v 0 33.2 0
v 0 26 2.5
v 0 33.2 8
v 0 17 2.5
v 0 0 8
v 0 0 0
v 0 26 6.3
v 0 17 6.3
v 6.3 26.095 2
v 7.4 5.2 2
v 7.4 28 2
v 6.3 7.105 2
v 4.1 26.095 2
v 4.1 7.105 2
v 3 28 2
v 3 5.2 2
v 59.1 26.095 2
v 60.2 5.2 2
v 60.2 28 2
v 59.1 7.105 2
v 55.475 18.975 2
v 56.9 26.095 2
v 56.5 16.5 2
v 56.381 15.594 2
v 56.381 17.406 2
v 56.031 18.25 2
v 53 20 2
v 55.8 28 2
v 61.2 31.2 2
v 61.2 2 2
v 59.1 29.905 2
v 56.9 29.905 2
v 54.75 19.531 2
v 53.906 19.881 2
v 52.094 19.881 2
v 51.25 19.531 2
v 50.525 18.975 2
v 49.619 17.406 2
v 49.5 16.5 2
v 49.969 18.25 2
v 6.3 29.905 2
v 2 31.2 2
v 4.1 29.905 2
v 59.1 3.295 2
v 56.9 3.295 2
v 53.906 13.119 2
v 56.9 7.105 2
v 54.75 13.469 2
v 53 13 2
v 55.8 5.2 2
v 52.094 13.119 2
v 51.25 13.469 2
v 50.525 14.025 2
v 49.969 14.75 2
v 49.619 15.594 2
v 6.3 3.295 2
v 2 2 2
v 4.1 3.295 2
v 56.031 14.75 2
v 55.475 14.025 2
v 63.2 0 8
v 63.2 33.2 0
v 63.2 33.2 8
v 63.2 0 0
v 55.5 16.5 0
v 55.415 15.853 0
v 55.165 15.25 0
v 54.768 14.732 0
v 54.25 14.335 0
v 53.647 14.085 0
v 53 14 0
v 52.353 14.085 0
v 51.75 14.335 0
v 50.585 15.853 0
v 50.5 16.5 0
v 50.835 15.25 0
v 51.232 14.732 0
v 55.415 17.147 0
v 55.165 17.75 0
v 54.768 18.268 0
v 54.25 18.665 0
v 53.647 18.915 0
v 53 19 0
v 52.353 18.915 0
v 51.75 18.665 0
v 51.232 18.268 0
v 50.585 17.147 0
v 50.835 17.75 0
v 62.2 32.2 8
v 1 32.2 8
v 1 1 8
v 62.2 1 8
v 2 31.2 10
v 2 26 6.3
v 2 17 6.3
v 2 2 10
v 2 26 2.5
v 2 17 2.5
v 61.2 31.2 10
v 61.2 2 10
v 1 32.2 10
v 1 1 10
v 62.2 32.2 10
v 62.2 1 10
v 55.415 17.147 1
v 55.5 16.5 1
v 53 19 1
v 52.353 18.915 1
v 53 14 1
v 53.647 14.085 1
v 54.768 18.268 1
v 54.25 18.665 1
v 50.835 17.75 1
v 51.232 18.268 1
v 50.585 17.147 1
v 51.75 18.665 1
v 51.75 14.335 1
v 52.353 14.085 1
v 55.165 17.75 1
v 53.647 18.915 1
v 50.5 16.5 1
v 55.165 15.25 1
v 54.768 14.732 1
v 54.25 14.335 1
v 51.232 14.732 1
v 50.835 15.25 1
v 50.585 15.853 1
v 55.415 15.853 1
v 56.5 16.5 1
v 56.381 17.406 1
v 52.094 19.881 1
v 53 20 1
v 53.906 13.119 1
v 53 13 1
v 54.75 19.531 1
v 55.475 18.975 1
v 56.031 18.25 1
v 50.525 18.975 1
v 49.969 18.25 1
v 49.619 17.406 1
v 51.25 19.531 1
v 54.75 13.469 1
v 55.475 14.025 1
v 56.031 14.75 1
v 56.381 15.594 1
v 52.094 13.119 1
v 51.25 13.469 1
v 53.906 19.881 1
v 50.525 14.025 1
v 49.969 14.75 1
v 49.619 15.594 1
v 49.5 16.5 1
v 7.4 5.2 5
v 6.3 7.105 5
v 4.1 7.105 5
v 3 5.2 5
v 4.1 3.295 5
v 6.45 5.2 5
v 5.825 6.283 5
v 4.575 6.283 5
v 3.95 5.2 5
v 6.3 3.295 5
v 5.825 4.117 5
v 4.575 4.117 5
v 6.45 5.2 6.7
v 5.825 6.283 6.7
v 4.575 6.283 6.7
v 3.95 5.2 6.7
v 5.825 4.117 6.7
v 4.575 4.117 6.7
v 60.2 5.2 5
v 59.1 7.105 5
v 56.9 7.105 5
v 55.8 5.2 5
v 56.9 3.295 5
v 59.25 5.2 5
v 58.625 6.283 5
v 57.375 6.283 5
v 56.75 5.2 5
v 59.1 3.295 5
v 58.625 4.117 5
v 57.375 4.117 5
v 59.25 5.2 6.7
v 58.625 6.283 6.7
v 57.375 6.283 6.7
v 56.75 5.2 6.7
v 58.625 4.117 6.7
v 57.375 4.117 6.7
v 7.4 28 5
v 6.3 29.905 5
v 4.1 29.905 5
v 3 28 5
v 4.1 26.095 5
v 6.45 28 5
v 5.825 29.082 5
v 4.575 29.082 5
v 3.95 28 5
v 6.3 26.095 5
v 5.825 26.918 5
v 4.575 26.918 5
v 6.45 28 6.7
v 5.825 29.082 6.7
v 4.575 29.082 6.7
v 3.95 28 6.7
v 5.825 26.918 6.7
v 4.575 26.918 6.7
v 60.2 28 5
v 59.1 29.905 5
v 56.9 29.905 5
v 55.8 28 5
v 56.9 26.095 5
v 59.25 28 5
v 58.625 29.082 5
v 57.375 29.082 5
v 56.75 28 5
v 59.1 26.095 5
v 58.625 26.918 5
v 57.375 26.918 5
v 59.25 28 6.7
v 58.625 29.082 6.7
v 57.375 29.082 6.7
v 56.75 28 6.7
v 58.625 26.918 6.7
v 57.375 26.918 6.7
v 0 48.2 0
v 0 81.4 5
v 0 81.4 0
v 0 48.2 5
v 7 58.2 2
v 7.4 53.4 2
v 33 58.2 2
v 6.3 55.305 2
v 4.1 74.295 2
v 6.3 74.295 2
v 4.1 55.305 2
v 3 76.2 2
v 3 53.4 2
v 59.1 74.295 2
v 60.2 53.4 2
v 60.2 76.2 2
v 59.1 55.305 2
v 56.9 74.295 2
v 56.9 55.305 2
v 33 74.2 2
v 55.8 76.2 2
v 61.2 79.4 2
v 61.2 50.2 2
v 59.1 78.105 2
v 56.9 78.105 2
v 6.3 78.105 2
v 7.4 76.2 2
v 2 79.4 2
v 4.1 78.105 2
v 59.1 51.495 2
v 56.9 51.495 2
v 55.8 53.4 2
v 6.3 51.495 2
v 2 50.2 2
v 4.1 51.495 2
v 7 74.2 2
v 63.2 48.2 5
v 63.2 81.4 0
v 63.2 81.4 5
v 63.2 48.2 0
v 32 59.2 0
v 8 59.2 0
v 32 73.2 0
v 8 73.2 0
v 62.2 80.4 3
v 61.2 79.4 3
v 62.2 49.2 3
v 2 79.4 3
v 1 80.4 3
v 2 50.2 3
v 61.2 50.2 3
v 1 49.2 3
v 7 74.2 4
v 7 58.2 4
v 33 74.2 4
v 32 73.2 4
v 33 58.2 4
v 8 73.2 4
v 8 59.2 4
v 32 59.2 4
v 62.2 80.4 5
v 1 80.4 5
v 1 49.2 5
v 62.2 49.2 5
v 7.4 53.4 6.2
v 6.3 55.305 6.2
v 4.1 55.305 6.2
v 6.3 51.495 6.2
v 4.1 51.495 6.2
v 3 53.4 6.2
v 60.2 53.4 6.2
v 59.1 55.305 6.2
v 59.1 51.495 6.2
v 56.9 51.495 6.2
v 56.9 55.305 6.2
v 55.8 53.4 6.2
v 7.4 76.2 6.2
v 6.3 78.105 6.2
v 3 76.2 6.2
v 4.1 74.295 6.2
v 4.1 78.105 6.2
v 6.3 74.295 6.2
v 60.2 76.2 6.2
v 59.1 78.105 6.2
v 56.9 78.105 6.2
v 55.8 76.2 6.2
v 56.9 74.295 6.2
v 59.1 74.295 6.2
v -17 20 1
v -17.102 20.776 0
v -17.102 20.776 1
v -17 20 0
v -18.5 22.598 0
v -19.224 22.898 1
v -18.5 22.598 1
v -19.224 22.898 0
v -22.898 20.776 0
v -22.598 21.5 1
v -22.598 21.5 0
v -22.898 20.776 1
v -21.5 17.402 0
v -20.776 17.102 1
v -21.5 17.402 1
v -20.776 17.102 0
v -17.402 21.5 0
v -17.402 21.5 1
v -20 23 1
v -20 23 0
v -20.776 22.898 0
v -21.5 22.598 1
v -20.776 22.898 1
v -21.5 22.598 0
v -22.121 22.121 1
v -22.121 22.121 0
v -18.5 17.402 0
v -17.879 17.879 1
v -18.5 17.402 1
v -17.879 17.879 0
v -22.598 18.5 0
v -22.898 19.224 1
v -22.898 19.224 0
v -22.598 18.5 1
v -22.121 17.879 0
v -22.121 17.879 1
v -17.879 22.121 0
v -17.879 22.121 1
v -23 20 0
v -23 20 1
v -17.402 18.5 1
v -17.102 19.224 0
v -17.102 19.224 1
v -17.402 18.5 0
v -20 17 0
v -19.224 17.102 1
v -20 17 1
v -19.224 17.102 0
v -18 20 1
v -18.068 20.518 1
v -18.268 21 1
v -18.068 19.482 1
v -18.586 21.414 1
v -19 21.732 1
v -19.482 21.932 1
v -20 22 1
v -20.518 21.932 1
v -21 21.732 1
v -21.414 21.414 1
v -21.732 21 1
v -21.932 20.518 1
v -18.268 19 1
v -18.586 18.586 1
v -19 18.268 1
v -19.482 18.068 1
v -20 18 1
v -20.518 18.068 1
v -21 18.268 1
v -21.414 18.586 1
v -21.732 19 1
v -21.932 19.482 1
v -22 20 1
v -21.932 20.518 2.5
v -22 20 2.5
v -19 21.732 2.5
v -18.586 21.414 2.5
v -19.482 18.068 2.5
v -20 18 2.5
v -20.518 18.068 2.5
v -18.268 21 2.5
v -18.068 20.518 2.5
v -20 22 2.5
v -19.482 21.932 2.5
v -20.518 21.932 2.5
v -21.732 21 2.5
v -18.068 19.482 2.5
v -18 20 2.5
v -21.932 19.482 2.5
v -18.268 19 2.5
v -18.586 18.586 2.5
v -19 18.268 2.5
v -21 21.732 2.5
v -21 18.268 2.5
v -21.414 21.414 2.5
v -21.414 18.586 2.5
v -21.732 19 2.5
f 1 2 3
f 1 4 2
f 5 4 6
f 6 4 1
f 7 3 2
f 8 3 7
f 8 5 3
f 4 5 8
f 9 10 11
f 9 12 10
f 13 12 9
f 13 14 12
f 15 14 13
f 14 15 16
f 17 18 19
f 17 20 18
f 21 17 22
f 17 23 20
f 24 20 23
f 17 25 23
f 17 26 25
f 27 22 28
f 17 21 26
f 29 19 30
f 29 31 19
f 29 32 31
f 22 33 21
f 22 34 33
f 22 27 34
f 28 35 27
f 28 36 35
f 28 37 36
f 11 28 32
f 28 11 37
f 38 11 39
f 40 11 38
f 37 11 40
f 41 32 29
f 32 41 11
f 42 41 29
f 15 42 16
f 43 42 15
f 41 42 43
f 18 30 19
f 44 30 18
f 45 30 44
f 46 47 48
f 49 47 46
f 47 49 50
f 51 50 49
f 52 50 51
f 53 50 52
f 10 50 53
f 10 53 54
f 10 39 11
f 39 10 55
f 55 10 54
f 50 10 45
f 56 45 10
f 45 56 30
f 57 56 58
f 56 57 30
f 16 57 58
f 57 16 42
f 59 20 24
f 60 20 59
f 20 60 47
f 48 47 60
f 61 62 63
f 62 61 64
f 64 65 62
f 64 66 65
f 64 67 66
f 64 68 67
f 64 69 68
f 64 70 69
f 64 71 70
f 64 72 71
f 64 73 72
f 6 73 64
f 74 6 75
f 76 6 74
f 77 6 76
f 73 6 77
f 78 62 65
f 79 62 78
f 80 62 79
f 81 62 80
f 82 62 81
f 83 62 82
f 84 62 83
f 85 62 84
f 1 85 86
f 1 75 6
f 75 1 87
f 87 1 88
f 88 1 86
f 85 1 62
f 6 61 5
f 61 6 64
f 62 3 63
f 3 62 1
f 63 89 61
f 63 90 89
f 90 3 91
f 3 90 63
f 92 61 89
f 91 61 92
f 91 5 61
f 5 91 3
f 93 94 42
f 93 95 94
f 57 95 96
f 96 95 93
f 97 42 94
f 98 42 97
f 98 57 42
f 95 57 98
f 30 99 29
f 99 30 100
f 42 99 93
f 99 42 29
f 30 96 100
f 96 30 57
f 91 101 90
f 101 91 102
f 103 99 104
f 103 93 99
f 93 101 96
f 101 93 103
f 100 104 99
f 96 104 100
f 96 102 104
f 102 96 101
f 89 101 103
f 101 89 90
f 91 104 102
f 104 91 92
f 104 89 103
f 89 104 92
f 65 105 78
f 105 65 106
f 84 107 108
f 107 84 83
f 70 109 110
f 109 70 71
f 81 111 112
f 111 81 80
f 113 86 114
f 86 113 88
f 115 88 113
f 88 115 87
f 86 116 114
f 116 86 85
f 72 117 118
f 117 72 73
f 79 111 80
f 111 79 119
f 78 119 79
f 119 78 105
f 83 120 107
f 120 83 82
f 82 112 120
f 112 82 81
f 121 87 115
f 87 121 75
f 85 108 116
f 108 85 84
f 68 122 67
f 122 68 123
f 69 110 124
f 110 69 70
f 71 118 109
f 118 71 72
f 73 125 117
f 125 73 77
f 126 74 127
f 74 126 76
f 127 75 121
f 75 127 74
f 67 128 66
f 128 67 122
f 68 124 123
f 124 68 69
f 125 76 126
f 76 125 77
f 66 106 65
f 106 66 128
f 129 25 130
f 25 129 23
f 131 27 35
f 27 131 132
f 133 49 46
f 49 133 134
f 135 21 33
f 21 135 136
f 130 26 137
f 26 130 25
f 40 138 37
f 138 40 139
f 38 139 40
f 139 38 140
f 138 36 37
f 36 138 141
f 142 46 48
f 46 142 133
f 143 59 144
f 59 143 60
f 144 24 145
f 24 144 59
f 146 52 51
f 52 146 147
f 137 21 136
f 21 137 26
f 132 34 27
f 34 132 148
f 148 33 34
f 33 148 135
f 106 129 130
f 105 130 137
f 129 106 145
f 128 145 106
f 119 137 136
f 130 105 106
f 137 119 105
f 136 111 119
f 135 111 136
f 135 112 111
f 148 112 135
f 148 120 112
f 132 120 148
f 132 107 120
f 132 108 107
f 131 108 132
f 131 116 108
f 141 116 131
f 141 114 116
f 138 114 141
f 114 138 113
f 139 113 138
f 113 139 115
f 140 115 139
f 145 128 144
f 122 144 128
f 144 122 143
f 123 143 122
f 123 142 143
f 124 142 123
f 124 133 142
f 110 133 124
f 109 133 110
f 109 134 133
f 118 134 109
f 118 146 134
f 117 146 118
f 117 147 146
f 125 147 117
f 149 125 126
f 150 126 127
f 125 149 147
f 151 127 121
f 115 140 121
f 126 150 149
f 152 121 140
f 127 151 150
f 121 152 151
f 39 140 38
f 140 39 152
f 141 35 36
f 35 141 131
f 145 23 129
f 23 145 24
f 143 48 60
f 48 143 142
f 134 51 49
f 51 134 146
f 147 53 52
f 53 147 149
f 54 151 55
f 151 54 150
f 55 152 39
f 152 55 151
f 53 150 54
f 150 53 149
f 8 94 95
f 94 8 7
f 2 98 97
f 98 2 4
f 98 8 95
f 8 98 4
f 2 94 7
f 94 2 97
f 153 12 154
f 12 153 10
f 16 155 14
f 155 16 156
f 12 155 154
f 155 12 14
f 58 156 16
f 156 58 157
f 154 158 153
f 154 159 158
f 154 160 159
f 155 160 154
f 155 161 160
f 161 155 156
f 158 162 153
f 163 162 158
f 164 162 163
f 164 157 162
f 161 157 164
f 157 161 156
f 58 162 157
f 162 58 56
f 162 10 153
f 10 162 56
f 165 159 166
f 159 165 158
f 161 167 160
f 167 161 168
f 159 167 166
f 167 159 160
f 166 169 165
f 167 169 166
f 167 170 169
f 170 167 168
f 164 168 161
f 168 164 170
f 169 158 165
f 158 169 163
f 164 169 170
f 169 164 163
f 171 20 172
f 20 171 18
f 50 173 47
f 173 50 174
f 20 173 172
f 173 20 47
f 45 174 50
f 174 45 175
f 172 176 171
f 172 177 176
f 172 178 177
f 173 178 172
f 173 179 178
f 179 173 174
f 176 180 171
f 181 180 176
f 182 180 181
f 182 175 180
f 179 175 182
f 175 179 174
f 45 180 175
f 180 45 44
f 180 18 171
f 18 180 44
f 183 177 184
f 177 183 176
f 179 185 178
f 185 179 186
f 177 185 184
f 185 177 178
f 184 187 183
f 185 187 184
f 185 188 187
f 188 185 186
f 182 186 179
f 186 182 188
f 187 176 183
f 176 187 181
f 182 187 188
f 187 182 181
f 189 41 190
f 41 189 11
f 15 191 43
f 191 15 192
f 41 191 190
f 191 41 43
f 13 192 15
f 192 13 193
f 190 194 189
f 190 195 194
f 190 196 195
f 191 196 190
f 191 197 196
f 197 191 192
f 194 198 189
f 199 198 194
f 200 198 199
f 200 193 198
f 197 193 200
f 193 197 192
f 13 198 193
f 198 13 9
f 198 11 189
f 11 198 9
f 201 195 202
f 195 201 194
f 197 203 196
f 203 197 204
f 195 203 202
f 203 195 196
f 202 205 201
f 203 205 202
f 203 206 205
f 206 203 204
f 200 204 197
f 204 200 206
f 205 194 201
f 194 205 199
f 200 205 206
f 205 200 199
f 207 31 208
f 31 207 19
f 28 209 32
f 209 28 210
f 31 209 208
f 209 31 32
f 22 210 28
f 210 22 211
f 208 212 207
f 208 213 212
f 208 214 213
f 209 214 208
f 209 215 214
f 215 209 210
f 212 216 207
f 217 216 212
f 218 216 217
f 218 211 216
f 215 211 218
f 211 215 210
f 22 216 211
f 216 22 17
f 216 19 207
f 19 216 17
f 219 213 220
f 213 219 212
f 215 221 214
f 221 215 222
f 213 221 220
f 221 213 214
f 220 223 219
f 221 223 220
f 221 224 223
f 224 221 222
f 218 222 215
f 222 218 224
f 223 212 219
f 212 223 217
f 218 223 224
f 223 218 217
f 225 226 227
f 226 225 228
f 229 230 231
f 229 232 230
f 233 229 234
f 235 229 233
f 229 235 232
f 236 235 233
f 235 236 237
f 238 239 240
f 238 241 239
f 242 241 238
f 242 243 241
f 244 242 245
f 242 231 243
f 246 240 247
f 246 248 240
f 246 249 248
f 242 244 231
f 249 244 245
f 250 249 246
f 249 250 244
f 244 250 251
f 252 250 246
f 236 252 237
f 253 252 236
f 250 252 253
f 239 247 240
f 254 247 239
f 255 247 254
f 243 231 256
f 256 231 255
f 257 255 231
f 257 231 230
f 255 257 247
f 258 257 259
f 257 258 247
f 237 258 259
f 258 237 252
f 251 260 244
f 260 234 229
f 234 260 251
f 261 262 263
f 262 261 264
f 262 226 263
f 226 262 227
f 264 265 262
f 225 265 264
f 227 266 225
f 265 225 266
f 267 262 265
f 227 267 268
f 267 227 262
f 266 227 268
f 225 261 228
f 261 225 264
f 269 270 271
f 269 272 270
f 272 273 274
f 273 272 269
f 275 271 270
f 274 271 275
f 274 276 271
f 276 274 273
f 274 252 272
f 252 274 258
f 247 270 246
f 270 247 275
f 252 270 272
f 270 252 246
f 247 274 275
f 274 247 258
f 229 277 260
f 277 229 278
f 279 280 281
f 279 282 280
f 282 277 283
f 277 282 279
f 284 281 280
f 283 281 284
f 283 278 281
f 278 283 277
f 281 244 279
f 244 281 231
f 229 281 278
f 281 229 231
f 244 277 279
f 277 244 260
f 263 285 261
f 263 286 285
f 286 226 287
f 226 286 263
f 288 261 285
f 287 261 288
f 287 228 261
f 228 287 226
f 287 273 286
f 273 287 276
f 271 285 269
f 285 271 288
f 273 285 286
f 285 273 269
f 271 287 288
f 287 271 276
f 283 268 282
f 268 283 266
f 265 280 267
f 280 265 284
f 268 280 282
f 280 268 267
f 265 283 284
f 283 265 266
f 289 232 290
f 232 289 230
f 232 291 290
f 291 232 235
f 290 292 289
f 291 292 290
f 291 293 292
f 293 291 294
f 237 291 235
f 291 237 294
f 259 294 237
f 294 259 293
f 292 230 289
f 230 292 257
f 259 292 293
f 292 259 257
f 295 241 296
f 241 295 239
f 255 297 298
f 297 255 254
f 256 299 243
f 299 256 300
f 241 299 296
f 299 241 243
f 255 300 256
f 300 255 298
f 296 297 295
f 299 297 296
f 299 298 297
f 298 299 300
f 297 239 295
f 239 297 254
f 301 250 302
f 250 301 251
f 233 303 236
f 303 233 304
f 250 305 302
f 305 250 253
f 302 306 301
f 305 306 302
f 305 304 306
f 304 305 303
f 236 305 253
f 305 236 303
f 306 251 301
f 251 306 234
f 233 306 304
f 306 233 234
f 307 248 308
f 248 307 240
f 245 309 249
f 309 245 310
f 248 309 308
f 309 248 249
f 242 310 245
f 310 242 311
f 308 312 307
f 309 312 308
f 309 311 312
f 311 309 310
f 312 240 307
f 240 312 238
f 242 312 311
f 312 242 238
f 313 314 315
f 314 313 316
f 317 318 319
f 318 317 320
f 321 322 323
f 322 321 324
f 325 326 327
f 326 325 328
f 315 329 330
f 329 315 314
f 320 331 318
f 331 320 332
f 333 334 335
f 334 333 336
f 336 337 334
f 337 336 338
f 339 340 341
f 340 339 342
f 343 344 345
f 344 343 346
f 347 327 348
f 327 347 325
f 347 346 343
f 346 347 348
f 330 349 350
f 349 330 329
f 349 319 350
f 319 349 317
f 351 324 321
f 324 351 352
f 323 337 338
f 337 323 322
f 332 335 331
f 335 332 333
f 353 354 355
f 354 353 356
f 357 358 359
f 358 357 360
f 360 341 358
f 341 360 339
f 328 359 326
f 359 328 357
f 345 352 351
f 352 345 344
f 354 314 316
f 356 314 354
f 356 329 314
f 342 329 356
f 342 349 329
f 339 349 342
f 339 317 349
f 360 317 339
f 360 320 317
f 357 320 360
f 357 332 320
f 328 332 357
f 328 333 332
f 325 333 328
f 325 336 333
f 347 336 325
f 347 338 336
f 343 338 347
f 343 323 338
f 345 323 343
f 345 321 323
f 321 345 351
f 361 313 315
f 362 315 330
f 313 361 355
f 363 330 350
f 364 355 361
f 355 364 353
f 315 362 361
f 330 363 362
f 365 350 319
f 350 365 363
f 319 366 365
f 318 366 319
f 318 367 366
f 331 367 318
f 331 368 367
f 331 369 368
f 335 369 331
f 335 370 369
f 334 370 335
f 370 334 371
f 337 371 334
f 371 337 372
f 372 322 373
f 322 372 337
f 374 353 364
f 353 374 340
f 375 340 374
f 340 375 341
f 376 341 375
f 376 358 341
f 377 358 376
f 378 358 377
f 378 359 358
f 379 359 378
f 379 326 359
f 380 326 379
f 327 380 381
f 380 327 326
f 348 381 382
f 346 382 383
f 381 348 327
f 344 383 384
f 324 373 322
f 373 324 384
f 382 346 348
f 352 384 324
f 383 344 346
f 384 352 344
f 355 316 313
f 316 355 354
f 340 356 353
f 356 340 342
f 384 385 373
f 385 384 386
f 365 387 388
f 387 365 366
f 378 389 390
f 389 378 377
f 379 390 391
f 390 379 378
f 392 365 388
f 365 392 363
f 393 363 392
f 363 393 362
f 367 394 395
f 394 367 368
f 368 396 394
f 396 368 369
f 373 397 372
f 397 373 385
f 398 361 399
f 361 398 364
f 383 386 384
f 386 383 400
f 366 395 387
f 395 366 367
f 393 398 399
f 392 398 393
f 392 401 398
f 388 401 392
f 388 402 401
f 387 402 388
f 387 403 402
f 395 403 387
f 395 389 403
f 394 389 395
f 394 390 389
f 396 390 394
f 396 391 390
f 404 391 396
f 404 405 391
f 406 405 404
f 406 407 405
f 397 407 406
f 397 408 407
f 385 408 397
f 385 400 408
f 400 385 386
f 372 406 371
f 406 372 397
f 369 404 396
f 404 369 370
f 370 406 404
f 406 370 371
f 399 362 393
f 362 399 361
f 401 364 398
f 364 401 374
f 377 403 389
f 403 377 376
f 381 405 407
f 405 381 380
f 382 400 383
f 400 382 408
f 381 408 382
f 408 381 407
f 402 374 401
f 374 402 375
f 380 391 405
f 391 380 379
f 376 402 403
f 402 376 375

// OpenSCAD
// This design is parameterized based on holes in a PCB.
// It assumes that the PCB has 4 holes, evenly spaced as
// corners of a rectangle.

// Note: width refers to X axis, depth to Y, height to Z
bottom = true;
top = true;
flash_show = true;
usb = true;
reset= false;
flash_remove_pin = false;
flash_hole = true;
// Edit these parameters for your own board dimensions
wall_thickness = 2;
floor_thickness = 2;
ceiling_thickness = 2;

bottom_wall_height = 6;
top_wall_height = 3;

window_x = 24.0; // v3
//window_x = 31.0; // Bv2
window_y = 14.0; // v3
//window_y = 16.0; // Bv2
window_ridge = 2;
// Total height of box = floor_thickness + ceiling_thickness + bottom_wall_height + top_wall_height

hole_spacing_x = 52.8; // v3
//hole_spacing_x = 59.0; // B v2
hole_spacing_y = 22.8;

hole_diameter = 2.5;
standoff_diameter = 4.4;
standoff_top = true;

// How much the PCB needs to be raised from the bottom
// to leave room for solderings and whatnot
standoff_height = 3;
standoff_height_top = 4.2;
board_thickness = 1.6;
facets = 6;

// padding between standoff and wall
padding_left = 1;
padding_right = 1;
padding_back = 1;
padding_front = 1;

// ridge where bottom and top off box can overlap
// Make sure this isn't less than top_wall_height
ridge_height = 2;

// flash button
button_diameter = 4.0;
button_spacing = 0.5;
button_thickness = 2.5;
button_height = wall_thickness + standoff_height - button_thickness;
button_holder_diameter = button_diameter + 2.0;
button_holder_spacing = 0.5;
button_holder_height = 1.0;

//-------------------------------------------------------------------

// Calculated globals


module ceilingless_box(width, depth, height) {
    // Floor
    cube([width, depth, floor_thickness]);
    
    // Left wall
    translate([0, 0, floor_thickness])
        cube([
            wall_thickness,
            depth,
            height]);
    
    // Right wall
    translate([width - wall_thickness, 0, floor_thickness])
        cube([
            wall_thickness,
            depth,
            height]);
    
    // Rear wall
    translate([wall_thickness, depth - wall_thickness, floor_thickness])
        cube([
            width - 2 * wall_thickness,
            wall_thickness,
            height]);
    
    // Front wall
    translate([wall_thickness, 0, floor_thickness])
        cube([
            width - 2 * wall_thickness,
            wall_thickness,
            height]);
}

module bottom_case() {
    floor_width = hole_spacing_x + standoff_diameter + padding_left + padding_right + wall_thickness * 2;
    floor_depth = hole_spacing_y + standoff_diameter + padding_front + padding_back + wall_thickness * 2;
    
    module box() {
        ceilingless_box(floor_width, floor_depth, bottom_wall_height);        
        
        // Left Ridge
        translate([
            wall_thickness / 2,
            wall_thickness / 2,
            floor_thickness + bottom_wall_height])
            cube([
                wall_thickness / 2,
                floor_depth - wall_thickness,
                ridge_height]);
        
        
        // Right Ridge
        translate([
            floor_width - wall_thickness,
            wall_thickness / 2,
            floor_thickness + bottom_wall_height])
            cube([
                wall_thickness / 2,
                floor_depth - wall_thickness,
                ridge_height]);
                
        // Rear Ridge
        translate([
            wall_thickness,
            floor_depth - wall_thickness,
            floor_thickness + bottom_wall_height])
            cube([
                floor_width - wall_thickness * 2,
                wall_thickness / 2,
                ridge_height]);
                
        // Front Ridge
        translate([
            wall_thickness,
            wall_thickness / 2,
            floor_thickness + bottom_wall_height])
            cube([
                floor_width - 2 * wall_thickness,
                wall_thickness / 2,
                ridge_height
            ]);
    }
        
    
    // Place the standoffs and through-PCB pins in the box
    module pcb_holder() {        
        base_offset_x = wall_thickness + padding_left + standoff_diameter / 2;
        base_offset_y = wall_thickness + padding_front + standoff_diameter / 2;
        
        module pin() {
            // Standoff
            translate([0, 0,  standoff_height / 2])
                cylinder(
                    r = standoff_diameter / 2,
                    h = standoff_height,
                    center = true,
                    $fn = facets);
            
            // Through-PCB pin
            translate([0, 0, 3.6])
                cylinder(
                    r = (hole_diameter / 2),
                    h = (board_thickness + 0.6),
                    center = true,
                    $fn = facets);
        }
        
        // Front left
        translate([base_offset_x, base_offset_y, floor_thickness])
            pin();
        
        // Front right
        translate([base_offset_x + hole_spacing_x, base_offset_y, floor_thickness])
            pin();
        
        // Rear left
        if (!flash_remove_pin) {
            translate([base_offset_x, base_offset_y + hole_spacing_y, floor_thickness])
                pin(); // pin near flash button
        }
        
        // Rear right
        translate([base_offset_x + hole_spacing_x, base_offset_y + hole_spacing_y, floor_thickness])
            pin();
        
    }
    difference () {
        box();
        if (usb == true) {
            translate([0, 17, 2.5])  cube([3, 9, 3.8]); // DDv3
            //translate([0, 8, 2.5])  cube([3, 9, 3.8]); // DDBv2
        }
        if (flash_hole) {
            // case hole for flash button ; DDBv2
            flash_button_x = wall_thickness + padding_left + 50; // DDv3
            flash_button_y = wall_thickness + padding_front + 13.5; // DDv3
            //flash_button_x = wall_thickness + padding_left + 2.5; // DDBv2
            //flash_button_y = wall_thickness + padding_front + 21.5; // DDBv2
            translate([flash_button_x, flash_button_y, 0])
                cylinder(
                    d = button_diameter + button_spacing * 2,
                    h = floor_thickness,
                    center = false,
                    $fn=24);
            translate([flash_button_x, flash_button_y, button_height - button_holder_height - button_spacing])
                cylinder(
                    d = button_holder_diameter + button_spacing * 2,
                    h = floor_thickness,
                    center = false,
                    $fn=24);
        }
    }
    pcb_holder();
}

module top_case() {
    floor_width = hole_spacing_x + standoff_diameter + padding_left + padding_right + wall_thickness * 2;
    floor_depth = hole_spacing_y + standoff_diameter + padding_front + padding_back + wall_thickness * 2;
    
    module box() {
        ceilingless_box(floor_width, floor_depth, top_wall_height - ridge_height);
        translate([7, 10, 2])  cube([window_x+window_ridge, window_y+window_ridge, 2]); // v3
        //translate([4, 8.5, 2])  cube([window_x+window_ridge, window_y+window_ridge, 2]); // Bv2

        // Left Ridge
        translate([
            0,
            0,
            floor_thickness + top_wall_height - ridge_height])
            cube([
                wall_thickness / 2,
                floor_depth,
                ridge_height]);
        
        
        // Right Ridge
        translate([
            floor_width - wall_thickness / 2,
            0,
            floor_thickness + top_wall_height - ridge_height])
            cube([
                wall_thickness / 2,
                floor_depth,
                ridge_height]);
                
        // Rear Ridge
        translate([
            wall_thickness / 2,
            floor_depth - wall_thickness / 2,
            floor_thickness + top_wall_height - ridge_height])
            cube([
                floor_width - wall_thickness,
                wall_thickness / 2,
                ridge_height]);
                
        // Front Ridge
        translate([
            wall_thickness / 2,
            0,
            floor_thickness + top_wall_height - ridge_height])
            cube([
                floor_width - wall_thickness,
                wall_thickness / 2,
                ridge_height
            ]);        
    }
    
    module pcb_holder() {
        base_offset_x = wall_thickness + padding_left + standoff_diameter / 2;
        base_offset_y = wall_thickness + padding_back + standoff_diameter / 2;
        
        module pin_receiver() {
           if (standoff_top == true)
           {
               cylinder(
                        r = (standoff_diameter / 2),
                        h = standoff_height_top,
                        center = false,
                        $fn = facets);
           }
        }
        
        // Keep in mind that this part needs to be turned over to get the correct
        // orientation. In the design, the rear left here looks like the front left.
        
        // Rear left
        translate([base_offset_x, base_offset_y, floor_thickness])
            pin_receiver();
        
        // Rear right
        translate([base_offset_x + hole_spacing_x, base_offset_y, floor_thickness])
            pin_receiver();
        
        // Front left
        translate([base_offset_x, base_offset_y + hole_spacing_y, floor_thickness])
            pin_receiver();
        
        // Front right
        translate([base_offset_x + hole_spacing_x, base_offset_y + hole_spacing_y, floor_thickness])
            pin_receiver();
    }
    
    
    difference () {
        box();
        translate([8, 11, -5])  cube([window_x, window_y, 10]); // v3
        //translate([5, 9.5, -5])  cube([window_x, window_y, 10]); // Bv2
    if (reset==true)
     translate([12, 28,  0])
                cylinder(
                    r = 1.2,
                    h = 4,
                    center = true,
                    $fn = 24);
        
        
        }
    
    pcb_holder();
    
}

module flash_button () {
    union() {
        cylinder(
            d = button_holder_diameter,
            h = button_holder_height,
            center = false,
            $fn = 24);
        cylinder(
            d = button_diameter,
            h = button_height,
            center = false,
            $fn = 24);
    }
}

if (bottom == true) bottom_case();
if (top == true) 
{
translate([
    0,
    15 + hole_spacing_y + standoff_diameter + padding_front + padding_back + wall_thickness * 2,
    0])
    top_case();
}
if (flash_show == true) {
    translate([-20,20,0])
        flash_button();
}
